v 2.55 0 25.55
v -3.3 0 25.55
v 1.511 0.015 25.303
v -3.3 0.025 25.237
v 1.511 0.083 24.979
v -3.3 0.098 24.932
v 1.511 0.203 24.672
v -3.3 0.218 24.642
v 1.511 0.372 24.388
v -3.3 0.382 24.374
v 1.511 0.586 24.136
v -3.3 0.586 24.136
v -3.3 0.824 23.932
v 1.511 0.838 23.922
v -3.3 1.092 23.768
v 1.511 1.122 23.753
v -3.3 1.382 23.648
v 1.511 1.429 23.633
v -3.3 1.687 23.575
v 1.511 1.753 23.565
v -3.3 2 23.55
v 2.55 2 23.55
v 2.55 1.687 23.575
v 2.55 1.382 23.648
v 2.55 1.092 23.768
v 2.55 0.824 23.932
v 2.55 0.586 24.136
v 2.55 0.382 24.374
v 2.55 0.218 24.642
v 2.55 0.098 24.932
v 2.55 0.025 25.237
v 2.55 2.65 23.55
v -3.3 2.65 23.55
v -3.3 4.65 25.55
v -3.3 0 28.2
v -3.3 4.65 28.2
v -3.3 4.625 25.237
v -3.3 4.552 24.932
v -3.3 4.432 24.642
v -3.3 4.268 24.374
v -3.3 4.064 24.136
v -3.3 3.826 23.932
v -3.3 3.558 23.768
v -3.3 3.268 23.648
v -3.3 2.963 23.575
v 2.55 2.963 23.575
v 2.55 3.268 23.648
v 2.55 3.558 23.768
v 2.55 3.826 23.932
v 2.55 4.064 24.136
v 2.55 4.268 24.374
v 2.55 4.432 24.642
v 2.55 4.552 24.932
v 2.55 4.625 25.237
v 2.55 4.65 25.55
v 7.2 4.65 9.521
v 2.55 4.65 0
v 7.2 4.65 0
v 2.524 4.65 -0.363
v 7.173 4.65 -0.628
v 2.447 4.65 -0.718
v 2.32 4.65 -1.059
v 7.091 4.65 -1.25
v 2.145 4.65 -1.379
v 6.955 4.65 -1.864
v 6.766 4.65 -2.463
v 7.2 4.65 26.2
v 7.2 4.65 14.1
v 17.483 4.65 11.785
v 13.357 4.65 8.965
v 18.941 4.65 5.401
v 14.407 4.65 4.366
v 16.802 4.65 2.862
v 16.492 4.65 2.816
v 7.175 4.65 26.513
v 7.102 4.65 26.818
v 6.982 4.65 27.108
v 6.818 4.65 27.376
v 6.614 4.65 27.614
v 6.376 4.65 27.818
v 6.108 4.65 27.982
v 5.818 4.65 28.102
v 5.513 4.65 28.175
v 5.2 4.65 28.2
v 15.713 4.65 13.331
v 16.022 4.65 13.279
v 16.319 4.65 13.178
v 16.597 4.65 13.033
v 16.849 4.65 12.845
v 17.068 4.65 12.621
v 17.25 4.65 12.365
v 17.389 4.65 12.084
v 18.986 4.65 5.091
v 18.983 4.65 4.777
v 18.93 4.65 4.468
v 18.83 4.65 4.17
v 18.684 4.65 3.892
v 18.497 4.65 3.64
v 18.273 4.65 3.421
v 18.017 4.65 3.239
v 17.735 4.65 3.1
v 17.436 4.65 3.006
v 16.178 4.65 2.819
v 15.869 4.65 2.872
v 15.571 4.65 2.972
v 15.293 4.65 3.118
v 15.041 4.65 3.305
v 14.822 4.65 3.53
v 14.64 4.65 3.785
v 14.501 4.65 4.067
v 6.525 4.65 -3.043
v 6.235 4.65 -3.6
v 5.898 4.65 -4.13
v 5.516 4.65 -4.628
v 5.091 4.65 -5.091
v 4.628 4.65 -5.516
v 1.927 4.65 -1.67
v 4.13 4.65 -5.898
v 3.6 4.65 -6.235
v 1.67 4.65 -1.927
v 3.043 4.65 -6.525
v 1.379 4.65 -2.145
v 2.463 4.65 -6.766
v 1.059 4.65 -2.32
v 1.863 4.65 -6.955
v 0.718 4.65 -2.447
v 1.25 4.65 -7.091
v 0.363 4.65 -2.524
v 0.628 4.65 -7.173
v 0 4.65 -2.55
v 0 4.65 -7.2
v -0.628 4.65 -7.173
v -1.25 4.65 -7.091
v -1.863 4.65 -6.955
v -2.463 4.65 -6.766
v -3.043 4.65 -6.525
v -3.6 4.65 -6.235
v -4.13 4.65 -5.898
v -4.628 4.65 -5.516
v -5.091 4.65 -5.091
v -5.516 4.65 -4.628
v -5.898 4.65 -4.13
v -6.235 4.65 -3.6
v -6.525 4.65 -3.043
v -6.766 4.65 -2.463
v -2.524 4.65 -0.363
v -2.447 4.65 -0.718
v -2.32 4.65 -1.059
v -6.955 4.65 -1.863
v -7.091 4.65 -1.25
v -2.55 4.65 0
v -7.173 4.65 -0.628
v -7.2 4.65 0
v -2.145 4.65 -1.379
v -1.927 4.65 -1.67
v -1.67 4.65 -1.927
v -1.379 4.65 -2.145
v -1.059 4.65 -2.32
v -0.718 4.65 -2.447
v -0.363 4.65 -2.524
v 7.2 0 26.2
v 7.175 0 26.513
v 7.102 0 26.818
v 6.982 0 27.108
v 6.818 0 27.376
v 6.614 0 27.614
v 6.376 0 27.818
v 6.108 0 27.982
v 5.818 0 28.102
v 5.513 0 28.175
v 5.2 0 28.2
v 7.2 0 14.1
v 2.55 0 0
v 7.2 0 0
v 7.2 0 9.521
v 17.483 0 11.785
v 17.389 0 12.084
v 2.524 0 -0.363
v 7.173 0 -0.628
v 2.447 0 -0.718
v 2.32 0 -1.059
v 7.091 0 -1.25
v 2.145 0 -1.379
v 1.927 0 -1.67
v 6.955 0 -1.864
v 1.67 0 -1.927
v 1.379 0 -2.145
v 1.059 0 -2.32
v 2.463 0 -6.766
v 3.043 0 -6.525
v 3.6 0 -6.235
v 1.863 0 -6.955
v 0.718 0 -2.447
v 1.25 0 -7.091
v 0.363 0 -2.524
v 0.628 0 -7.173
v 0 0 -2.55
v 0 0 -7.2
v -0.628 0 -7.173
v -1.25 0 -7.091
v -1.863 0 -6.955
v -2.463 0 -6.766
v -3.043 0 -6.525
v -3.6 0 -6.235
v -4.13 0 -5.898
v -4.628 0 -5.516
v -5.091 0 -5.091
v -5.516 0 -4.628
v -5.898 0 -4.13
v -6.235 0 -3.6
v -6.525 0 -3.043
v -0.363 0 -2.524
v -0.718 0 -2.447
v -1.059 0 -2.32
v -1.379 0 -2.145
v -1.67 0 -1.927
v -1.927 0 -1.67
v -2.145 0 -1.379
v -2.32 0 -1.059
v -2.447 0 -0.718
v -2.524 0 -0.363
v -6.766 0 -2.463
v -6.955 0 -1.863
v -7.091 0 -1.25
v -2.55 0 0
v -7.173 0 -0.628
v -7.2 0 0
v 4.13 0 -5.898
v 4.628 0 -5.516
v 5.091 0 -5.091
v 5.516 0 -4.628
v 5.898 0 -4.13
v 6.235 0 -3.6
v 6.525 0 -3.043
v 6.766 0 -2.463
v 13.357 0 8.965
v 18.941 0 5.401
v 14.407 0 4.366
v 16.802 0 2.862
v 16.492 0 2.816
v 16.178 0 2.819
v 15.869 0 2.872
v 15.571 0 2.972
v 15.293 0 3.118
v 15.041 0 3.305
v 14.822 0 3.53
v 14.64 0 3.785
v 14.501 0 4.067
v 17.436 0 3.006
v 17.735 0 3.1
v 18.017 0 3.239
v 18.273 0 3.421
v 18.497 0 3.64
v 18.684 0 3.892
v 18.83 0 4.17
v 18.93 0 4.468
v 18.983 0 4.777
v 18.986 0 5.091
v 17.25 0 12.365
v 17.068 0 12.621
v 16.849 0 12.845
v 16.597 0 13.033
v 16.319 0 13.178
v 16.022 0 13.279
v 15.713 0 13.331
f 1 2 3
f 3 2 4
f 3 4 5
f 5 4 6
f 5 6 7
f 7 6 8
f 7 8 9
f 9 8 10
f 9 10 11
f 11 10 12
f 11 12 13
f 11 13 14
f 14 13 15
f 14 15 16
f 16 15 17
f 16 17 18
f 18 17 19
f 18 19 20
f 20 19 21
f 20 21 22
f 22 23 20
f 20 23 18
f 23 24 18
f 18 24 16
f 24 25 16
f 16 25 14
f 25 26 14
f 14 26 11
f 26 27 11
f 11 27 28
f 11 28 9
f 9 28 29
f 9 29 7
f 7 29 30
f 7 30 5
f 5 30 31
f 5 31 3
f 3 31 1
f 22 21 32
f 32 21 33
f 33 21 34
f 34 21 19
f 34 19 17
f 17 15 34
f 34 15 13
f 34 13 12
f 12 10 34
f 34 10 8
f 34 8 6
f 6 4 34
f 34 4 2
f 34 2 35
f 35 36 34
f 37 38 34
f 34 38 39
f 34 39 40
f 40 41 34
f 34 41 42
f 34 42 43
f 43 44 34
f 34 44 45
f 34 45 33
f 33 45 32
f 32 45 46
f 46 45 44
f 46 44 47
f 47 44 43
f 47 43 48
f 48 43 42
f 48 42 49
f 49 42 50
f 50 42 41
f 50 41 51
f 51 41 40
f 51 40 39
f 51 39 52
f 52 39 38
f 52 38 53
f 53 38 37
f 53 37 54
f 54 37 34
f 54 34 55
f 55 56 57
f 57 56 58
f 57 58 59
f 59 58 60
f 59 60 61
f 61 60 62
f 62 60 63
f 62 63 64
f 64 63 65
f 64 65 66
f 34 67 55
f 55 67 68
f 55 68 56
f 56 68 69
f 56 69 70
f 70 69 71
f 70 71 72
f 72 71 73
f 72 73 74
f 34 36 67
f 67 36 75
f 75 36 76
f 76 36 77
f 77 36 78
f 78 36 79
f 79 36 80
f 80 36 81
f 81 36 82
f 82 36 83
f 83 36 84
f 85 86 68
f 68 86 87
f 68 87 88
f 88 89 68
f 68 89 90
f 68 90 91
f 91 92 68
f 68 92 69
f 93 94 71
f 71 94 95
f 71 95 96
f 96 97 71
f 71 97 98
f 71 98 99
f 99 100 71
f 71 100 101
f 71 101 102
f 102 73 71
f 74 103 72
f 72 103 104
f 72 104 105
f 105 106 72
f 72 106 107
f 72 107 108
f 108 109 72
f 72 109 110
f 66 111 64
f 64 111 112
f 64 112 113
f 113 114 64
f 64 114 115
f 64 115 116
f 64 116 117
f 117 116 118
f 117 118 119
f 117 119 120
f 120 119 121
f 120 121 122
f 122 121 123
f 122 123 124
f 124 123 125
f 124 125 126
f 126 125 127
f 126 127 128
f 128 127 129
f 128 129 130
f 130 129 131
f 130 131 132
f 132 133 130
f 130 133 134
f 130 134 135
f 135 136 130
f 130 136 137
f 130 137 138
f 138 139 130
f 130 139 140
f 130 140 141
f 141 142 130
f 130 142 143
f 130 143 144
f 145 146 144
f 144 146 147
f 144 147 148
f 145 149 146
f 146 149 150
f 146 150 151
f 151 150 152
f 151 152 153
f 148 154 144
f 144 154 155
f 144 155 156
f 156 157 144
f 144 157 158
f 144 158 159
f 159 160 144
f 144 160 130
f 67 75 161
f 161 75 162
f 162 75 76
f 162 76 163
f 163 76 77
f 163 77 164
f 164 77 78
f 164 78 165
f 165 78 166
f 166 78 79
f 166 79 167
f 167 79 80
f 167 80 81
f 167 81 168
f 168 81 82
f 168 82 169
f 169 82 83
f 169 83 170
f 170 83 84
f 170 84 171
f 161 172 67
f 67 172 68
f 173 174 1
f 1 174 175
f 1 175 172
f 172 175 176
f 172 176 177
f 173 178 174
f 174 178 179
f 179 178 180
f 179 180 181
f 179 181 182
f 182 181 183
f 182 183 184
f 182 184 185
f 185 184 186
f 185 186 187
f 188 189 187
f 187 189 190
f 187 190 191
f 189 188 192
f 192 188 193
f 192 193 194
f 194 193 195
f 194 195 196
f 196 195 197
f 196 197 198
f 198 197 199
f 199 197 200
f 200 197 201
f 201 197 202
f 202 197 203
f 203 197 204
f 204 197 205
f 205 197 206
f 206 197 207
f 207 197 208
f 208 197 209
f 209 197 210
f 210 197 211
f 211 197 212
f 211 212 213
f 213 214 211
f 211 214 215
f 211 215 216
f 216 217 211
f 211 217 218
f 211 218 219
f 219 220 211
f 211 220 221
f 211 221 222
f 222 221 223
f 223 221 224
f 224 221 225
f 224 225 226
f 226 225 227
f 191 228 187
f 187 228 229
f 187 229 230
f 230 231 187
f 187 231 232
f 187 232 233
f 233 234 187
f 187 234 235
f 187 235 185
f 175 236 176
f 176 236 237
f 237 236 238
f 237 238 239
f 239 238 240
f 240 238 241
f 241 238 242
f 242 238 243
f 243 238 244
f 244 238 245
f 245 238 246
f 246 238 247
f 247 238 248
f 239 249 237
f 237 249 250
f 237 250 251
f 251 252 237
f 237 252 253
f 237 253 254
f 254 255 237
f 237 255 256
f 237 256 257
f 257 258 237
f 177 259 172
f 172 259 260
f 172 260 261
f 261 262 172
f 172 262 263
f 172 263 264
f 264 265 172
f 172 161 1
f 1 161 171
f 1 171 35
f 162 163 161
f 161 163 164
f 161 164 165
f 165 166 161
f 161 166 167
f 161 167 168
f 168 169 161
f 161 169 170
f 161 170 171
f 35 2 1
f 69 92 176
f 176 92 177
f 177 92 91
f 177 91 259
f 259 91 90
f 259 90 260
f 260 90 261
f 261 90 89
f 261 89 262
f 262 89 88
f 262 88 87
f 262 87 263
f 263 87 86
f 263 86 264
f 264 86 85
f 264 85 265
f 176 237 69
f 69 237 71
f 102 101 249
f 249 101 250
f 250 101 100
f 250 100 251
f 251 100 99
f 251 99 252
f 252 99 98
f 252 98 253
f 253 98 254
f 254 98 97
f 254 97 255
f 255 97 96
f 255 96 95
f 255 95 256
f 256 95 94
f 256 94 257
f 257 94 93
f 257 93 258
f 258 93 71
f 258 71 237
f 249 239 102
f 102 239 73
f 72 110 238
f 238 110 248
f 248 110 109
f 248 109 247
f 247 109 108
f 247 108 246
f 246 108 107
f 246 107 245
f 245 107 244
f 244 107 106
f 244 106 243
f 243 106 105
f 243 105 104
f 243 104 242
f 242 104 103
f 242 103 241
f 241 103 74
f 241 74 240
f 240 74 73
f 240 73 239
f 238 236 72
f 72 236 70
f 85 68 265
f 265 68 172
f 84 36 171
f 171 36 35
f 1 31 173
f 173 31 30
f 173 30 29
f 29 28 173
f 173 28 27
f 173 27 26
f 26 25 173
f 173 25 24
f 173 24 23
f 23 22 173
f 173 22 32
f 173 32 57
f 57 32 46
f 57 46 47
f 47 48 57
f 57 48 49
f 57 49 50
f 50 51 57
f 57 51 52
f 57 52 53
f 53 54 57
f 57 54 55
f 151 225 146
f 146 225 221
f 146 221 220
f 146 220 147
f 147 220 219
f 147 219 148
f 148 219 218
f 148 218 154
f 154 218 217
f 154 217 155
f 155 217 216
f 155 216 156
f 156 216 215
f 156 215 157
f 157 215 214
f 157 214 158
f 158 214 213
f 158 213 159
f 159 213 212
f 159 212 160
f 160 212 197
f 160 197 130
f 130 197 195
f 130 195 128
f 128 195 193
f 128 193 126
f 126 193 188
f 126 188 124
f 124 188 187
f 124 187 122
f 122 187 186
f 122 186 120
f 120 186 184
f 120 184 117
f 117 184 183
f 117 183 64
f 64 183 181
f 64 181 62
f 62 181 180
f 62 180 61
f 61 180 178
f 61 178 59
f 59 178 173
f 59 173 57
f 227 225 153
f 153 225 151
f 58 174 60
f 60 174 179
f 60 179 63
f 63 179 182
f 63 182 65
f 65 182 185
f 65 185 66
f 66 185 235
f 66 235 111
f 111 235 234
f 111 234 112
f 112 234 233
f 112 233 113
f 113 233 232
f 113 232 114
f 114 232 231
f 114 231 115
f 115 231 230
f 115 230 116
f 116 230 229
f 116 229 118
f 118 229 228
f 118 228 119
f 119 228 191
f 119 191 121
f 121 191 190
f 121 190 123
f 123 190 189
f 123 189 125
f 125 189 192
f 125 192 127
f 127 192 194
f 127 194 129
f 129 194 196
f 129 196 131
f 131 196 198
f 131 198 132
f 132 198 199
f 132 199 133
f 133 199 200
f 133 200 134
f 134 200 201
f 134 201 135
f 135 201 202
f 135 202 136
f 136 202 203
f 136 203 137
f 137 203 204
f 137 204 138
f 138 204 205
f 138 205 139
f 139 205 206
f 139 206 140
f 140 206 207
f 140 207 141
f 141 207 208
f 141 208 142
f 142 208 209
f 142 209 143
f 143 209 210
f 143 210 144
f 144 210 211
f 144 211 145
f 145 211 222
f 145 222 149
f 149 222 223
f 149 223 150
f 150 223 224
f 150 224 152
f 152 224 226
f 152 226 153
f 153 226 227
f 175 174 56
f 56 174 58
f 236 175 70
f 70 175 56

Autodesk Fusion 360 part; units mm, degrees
sketch "Sketch1" plane through (0, 0, 0) normal (0, 1, 0) x (1, 0, 0)
  circle A0 centre (0, 0) radius 7.2
  circle A1 centre (0, 0) radius 2.55
  line L0 (7.2, 0) -> (2.55, 0)
  line L1 (2.55, 0) -> (2.55, -28.2)
  line L2 (2.55, -28.2) -> (7.2, -28.2)
  line L3 (7.2, -28.2) -> (7.2, 0)
  line L4 (7.2, -28.2) -> (-3.3, -28.2)
  line L5 (-3.3, -28.2) -> (-3.3, -23.55)
  line L6 (-3.3, -23.55) -> (7.2, -23.55)
  line L7 (7.2, -23.55) -> (7.2, -28.2)
  line L8 (2.55, 0) -> (-7.2, 0)
  line L9 (7.2, -4.2775) -> (7.2, -1.15)
  line L10 (7.2, -14.1) -> (17.1595, -13.2006)
  line L11 (17.1595, -13.2006) -> (16.7494, -8.6591)
  line L12 (16.7494, -8.6591) -> (6.7899, -9.5585)
  line L13 (6.7899, -9.5585) -> (7.2, -14.1)
  line L14 (17.1595, -13.2006) -> (12.6262, -12.1654)
  line L15 (12.6262, -12.1654) -> (14.8525, -2.4164)
  line L16 (14.8525, -2.4164) -> (19.3858, -3.4516)
  line L17 (19.3858, -3.4516) -> (17.1595, -13.2006)
  dimension "d1" = 14.4
  dimension "d2" = 5.1
  dimension "d3" = 4.65
  dimension "d4" = 28.2
  dimension "d5" = 10.5
  dimension "d6" = 4.65
  dimension "d16" = 10
  dimension "d17" = 4.56
  dimension "d18" = 4.65
  dimension "d19" = 10
extrude "Extrude1" add sketch "Sketch1" along normal blind 4.65 contours A0 A1 L0 L8 | A0 L1 L3 L6 L9 L12 L13 | A0 L0 L1 | L1 L2 L3 L4 L6 L7 | L1 L4 L5 L6 | L3 L10 L12 L14 L15 | L3 L12 L13 | L11 L12 L15 L16 L17 | L11 L12 L14 L15
fillet "Fillet1" radius 2 3 edges at (14.8525, 2.325, 2.4164) (19.3858, 2.325, 3.4516) (17.1595, 2.325, 13.2006)
fillet "Fillet2" radius 2 1 edges at (7.2, 2.325, 28.2)
fillet "Fillet3" radius 2 2 edges at (-0.375, 4.65, 23.55) (-0.375, 0, 23.55)
